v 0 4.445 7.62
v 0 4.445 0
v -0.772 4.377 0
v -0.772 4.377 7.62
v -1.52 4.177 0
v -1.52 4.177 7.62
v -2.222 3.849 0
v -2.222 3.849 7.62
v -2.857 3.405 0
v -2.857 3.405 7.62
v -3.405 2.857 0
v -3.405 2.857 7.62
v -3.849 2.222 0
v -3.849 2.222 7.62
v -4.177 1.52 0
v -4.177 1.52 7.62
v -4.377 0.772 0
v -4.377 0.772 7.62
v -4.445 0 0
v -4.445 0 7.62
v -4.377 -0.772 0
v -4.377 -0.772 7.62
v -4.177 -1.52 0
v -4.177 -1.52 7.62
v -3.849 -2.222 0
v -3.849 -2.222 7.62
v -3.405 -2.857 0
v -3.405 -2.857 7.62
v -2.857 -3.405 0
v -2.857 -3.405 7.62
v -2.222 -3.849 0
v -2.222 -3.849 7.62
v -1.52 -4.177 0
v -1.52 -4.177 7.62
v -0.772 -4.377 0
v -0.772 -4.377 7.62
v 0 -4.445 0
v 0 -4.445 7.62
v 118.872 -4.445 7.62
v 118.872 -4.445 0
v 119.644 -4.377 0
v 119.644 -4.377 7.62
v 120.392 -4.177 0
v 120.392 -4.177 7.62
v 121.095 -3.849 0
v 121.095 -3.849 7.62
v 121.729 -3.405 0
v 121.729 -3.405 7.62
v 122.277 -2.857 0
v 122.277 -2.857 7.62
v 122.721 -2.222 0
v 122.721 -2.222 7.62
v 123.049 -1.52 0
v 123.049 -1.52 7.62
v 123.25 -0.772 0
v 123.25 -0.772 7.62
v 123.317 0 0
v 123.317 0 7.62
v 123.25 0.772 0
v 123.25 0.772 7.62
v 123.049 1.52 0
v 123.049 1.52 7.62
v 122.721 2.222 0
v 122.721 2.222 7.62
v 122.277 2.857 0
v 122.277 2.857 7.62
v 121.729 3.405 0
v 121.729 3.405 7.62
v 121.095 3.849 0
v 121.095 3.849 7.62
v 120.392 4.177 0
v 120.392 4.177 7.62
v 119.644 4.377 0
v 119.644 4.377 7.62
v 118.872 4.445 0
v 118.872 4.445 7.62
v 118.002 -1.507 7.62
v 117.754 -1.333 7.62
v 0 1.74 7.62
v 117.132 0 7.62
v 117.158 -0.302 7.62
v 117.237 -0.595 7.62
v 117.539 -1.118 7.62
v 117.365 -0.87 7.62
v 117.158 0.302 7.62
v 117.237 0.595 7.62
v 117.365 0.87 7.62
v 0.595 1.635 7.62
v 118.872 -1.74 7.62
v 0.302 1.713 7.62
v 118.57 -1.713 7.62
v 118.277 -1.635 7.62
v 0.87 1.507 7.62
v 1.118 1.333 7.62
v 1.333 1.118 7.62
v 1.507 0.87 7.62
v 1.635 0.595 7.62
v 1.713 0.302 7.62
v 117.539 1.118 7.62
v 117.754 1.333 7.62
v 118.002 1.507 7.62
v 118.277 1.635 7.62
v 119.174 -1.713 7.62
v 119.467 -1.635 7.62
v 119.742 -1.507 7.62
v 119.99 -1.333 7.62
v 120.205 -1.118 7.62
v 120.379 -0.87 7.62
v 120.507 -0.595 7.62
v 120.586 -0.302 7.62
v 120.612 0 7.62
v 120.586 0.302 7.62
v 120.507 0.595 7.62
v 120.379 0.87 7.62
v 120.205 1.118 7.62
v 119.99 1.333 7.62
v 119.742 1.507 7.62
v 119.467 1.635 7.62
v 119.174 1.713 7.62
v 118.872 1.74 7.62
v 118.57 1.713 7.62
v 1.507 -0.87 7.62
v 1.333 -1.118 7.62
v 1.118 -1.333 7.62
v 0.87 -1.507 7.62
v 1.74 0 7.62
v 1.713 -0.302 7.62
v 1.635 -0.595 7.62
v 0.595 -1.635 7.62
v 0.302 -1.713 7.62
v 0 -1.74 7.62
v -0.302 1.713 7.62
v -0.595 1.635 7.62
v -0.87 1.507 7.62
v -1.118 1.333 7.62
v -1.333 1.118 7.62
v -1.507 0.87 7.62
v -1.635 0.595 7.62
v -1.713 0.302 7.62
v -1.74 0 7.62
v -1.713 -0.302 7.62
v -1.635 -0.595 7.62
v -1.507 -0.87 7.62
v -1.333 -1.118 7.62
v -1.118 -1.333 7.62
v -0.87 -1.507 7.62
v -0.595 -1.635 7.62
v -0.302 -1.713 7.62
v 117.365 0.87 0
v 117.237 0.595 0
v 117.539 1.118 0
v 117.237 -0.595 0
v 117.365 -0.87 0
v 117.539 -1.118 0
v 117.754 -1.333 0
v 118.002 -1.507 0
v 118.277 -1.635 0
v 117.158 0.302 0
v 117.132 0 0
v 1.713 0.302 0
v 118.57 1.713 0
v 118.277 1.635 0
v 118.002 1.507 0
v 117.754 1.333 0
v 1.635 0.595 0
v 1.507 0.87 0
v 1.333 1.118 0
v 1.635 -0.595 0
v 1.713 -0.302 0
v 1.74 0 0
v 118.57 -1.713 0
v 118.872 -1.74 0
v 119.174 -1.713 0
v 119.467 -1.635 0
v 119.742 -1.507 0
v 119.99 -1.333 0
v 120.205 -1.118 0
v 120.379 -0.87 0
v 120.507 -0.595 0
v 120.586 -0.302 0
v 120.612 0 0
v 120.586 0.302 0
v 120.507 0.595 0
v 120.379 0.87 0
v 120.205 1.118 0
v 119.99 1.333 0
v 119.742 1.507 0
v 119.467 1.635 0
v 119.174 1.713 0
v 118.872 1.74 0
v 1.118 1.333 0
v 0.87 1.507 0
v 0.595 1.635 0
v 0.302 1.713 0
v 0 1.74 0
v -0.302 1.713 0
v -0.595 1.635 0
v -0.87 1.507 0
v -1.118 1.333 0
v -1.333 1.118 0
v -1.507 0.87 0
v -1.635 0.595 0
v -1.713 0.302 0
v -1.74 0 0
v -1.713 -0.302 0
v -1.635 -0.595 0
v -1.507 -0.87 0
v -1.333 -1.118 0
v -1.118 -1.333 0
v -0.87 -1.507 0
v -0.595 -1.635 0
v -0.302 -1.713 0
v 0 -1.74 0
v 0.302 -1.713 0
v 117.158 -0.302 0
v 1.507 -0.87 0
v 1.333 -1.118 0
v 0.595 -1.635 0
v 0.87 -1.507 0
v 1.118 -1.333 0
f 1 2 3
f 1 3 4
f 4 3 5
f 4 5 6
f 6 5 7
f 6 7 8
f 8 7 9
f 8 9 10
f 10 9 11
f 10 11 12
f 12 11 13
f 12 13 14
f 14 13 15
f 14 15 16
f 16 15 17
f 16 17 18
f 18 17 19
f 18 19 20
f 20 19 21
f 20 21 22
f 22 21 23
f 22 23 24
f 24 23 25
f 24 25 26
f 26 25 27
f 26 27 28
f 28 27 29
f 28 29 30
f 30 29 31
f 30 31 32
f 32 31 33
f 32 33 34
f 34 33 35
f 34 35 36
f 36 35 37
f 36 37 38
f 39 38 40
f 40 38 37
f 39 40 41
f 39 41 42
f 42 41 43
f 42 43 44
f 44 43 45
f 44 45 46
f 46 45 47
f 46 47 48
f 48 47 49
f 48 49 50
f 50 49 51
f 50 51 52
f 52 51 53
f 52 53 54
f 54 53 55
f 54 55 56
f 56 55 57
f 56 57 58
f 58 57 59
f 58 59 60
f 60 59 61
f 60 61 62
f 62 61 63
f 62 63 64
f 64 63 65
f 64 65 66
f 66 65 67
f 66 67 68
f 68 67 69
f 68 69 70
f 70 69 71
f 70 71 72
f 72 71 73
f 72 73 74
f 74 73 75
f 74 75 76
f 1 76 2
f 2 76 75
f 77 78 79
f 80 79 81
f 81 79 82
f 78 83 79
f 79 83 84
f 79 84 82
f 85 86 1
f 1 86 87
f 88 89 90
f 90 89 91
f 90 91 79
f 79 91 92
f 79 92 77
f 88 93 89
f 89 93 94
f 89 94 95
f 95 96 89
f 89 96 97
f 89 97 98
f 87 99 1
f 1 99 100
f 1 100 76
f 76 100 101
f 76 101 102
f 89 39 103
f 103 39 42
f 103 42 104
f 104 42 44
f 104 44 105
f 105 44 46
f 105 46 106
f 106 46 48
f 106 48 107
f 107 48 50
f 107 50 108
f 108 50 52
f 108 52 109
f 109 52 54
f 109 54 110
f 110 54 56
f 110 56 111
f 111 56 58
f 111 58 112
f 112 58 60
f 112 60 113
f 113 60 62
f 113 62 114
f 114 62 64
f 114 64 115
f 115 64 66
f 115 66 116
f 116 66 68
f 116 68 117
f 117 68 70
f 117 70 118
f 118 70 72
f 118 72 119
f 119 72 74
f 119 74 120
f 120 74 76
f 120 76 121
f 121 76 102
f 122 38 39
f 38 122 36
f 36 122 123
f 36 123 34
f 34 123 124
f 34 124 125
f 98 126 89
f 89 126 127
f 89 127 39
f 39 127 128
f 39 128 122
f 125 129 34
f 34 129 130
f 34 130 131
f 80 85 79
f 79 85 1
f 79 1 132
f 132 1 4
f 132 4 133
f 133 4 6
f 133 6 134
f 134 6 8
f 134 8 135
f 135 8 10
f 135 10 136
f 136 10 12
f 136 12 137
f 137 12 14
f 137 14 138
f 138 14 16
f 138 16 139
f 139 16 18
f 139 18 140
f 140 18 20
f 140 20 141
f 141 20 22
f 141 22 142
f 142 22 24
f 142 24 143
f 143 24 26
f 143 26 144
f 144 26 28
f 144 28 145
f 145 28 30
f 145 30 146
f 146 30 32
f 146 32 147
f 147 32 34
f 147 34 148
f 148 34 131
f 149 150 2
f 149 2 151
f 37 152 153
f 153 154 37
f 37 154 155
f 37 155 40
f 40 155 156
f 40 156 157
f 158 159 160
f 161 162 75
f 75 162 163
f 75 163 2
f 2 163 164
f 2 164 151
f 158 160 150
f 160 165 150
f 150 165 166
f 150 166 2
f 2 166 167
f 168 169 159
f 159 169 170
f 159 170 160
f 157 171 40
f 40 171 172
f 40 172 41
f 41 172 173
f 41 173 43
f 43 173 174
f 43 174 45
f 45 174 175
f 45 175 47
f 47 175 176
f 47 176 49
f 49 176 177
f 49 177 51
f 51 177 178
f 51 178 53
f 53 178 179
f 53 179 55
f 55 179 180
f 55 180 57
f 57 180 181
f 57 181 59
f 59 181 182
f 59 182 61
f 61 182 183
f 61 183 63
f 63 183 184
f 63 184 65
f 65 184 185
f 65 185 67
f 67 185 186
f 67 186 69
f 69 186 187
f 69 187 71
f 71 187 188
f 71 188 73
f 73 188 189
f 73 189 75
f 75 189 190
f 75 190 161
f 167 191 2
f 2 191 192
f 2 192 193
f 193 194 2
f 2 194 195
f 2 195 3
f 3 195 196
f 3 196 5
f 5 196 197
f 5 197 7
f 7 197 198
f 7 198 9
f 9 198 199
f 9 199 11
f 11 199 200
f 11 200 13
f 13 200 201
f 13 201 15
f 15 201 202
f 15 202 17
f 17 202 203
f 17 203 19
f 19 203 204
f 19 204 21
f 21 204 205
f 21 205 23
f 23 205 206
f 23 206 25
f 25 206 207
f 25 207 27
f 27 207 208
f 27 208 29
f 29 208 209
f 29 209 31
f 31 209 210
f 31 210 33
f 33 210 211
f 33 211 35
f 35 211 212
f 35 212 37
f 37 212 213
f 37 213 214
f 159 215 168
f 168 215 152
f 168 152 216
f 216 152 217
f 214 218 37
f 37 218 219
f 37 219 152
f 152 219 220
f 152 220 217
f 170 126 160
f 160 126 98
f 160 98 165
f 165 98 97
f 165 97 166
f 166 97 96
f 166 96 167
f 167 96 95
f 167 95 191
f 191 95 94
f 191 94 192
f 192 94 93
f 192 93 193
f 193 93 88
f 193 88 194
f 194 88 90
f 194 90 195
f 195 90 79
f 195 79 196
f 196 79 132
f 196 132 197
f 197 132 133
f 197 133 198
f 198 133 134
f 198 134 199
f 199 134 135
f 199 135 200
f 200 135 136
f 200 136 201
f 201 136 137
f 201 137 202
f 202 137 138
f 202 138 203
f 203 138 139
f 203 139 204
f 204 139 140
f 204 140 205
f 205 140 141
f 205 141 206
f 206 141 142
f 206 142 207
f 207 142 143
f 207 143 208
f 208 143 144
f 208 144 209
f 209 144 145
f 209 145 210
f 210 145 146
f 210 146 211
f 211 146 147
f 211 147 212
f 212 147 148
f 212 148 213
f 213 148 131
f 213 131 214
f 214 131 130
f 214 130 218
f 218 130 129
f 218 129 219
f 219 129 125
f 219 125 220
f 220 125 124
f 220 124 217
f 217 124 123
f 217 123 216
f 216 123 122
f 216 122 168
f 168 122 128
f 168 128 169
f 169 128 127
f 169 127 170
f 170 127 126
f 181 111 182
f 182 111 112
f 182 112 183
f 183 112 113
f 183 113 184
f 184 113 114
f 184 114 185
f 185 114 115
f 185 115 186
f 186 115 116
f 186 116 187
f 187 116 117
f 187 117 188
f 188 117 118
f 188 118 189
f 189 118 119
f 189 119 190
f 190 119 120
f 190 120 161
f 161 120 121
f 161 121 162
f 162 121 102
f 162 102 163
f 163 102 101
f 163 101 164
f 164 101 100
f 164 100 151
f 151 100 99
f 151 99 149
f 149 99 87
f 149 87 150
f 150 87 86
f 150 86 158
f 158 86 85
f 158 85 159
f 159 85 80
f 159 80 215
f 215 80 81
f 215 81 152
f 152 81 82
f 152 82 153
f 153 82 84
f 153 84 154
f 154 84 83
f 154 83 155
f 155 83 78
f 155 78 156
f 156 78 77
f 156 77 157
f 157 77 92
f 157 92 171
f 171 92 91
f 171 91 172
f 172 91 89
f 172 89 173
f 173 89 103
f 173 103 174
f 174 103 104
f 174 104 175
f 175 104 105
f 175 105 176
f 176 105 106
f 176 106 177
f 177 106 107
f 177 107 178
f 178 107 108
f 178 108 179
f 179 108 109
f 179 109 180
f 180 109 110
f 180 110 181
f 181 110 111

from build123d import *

# Parameters (mm, degrees)
BOSS_EXTRUDE1_DEPTH = 7.62
CUT_EXTRUDE1_START  = -8.62
SKETCH2_R           = 1.7399
CUT_EXTRUDE1_DEPTH  = 9.62


with BuildPart() as part:
    # Sketch1 → Boss-Extrude1 (new body)
    with BuildSketch(Plane.XY):
        with BuildLine():
            Line((0, 4.445), (118.872, 4.445))
            ThreePointArc((118.872, 4.445), (123.317, 0), (118.872, -4.445))
            Line((118.872, -4.445), (0, -4.445))
            ThreePointArc((0, -4.445), (-4.445, 0), (0, 4.445))
        make_face()
    extrude(amount=BOSS_EXTRUDE1_DEPTH)

    # Sketch2 → Cut-Extrude1 (cut)
    with BuildSketch(Plane.XY.offset(7.62).offset(CUT_EXTRUDE1_START)):
        Circle(SKETCH2_R)
    cut_extrude1 = extrude(amount=CUT_EXTRUDE1_DEPTH, mode=Mode.SUBTRACT)

    # Mirror1: Cut-Extrude1 across plane
    add(cut_extrude1.mirror(Plane(origin=(59.436, 0, 0), x_dir=(0, 0, 1), z_dir=(1, 0, 0))), mode=Mode.SUBTRACT)


solid = part.part
